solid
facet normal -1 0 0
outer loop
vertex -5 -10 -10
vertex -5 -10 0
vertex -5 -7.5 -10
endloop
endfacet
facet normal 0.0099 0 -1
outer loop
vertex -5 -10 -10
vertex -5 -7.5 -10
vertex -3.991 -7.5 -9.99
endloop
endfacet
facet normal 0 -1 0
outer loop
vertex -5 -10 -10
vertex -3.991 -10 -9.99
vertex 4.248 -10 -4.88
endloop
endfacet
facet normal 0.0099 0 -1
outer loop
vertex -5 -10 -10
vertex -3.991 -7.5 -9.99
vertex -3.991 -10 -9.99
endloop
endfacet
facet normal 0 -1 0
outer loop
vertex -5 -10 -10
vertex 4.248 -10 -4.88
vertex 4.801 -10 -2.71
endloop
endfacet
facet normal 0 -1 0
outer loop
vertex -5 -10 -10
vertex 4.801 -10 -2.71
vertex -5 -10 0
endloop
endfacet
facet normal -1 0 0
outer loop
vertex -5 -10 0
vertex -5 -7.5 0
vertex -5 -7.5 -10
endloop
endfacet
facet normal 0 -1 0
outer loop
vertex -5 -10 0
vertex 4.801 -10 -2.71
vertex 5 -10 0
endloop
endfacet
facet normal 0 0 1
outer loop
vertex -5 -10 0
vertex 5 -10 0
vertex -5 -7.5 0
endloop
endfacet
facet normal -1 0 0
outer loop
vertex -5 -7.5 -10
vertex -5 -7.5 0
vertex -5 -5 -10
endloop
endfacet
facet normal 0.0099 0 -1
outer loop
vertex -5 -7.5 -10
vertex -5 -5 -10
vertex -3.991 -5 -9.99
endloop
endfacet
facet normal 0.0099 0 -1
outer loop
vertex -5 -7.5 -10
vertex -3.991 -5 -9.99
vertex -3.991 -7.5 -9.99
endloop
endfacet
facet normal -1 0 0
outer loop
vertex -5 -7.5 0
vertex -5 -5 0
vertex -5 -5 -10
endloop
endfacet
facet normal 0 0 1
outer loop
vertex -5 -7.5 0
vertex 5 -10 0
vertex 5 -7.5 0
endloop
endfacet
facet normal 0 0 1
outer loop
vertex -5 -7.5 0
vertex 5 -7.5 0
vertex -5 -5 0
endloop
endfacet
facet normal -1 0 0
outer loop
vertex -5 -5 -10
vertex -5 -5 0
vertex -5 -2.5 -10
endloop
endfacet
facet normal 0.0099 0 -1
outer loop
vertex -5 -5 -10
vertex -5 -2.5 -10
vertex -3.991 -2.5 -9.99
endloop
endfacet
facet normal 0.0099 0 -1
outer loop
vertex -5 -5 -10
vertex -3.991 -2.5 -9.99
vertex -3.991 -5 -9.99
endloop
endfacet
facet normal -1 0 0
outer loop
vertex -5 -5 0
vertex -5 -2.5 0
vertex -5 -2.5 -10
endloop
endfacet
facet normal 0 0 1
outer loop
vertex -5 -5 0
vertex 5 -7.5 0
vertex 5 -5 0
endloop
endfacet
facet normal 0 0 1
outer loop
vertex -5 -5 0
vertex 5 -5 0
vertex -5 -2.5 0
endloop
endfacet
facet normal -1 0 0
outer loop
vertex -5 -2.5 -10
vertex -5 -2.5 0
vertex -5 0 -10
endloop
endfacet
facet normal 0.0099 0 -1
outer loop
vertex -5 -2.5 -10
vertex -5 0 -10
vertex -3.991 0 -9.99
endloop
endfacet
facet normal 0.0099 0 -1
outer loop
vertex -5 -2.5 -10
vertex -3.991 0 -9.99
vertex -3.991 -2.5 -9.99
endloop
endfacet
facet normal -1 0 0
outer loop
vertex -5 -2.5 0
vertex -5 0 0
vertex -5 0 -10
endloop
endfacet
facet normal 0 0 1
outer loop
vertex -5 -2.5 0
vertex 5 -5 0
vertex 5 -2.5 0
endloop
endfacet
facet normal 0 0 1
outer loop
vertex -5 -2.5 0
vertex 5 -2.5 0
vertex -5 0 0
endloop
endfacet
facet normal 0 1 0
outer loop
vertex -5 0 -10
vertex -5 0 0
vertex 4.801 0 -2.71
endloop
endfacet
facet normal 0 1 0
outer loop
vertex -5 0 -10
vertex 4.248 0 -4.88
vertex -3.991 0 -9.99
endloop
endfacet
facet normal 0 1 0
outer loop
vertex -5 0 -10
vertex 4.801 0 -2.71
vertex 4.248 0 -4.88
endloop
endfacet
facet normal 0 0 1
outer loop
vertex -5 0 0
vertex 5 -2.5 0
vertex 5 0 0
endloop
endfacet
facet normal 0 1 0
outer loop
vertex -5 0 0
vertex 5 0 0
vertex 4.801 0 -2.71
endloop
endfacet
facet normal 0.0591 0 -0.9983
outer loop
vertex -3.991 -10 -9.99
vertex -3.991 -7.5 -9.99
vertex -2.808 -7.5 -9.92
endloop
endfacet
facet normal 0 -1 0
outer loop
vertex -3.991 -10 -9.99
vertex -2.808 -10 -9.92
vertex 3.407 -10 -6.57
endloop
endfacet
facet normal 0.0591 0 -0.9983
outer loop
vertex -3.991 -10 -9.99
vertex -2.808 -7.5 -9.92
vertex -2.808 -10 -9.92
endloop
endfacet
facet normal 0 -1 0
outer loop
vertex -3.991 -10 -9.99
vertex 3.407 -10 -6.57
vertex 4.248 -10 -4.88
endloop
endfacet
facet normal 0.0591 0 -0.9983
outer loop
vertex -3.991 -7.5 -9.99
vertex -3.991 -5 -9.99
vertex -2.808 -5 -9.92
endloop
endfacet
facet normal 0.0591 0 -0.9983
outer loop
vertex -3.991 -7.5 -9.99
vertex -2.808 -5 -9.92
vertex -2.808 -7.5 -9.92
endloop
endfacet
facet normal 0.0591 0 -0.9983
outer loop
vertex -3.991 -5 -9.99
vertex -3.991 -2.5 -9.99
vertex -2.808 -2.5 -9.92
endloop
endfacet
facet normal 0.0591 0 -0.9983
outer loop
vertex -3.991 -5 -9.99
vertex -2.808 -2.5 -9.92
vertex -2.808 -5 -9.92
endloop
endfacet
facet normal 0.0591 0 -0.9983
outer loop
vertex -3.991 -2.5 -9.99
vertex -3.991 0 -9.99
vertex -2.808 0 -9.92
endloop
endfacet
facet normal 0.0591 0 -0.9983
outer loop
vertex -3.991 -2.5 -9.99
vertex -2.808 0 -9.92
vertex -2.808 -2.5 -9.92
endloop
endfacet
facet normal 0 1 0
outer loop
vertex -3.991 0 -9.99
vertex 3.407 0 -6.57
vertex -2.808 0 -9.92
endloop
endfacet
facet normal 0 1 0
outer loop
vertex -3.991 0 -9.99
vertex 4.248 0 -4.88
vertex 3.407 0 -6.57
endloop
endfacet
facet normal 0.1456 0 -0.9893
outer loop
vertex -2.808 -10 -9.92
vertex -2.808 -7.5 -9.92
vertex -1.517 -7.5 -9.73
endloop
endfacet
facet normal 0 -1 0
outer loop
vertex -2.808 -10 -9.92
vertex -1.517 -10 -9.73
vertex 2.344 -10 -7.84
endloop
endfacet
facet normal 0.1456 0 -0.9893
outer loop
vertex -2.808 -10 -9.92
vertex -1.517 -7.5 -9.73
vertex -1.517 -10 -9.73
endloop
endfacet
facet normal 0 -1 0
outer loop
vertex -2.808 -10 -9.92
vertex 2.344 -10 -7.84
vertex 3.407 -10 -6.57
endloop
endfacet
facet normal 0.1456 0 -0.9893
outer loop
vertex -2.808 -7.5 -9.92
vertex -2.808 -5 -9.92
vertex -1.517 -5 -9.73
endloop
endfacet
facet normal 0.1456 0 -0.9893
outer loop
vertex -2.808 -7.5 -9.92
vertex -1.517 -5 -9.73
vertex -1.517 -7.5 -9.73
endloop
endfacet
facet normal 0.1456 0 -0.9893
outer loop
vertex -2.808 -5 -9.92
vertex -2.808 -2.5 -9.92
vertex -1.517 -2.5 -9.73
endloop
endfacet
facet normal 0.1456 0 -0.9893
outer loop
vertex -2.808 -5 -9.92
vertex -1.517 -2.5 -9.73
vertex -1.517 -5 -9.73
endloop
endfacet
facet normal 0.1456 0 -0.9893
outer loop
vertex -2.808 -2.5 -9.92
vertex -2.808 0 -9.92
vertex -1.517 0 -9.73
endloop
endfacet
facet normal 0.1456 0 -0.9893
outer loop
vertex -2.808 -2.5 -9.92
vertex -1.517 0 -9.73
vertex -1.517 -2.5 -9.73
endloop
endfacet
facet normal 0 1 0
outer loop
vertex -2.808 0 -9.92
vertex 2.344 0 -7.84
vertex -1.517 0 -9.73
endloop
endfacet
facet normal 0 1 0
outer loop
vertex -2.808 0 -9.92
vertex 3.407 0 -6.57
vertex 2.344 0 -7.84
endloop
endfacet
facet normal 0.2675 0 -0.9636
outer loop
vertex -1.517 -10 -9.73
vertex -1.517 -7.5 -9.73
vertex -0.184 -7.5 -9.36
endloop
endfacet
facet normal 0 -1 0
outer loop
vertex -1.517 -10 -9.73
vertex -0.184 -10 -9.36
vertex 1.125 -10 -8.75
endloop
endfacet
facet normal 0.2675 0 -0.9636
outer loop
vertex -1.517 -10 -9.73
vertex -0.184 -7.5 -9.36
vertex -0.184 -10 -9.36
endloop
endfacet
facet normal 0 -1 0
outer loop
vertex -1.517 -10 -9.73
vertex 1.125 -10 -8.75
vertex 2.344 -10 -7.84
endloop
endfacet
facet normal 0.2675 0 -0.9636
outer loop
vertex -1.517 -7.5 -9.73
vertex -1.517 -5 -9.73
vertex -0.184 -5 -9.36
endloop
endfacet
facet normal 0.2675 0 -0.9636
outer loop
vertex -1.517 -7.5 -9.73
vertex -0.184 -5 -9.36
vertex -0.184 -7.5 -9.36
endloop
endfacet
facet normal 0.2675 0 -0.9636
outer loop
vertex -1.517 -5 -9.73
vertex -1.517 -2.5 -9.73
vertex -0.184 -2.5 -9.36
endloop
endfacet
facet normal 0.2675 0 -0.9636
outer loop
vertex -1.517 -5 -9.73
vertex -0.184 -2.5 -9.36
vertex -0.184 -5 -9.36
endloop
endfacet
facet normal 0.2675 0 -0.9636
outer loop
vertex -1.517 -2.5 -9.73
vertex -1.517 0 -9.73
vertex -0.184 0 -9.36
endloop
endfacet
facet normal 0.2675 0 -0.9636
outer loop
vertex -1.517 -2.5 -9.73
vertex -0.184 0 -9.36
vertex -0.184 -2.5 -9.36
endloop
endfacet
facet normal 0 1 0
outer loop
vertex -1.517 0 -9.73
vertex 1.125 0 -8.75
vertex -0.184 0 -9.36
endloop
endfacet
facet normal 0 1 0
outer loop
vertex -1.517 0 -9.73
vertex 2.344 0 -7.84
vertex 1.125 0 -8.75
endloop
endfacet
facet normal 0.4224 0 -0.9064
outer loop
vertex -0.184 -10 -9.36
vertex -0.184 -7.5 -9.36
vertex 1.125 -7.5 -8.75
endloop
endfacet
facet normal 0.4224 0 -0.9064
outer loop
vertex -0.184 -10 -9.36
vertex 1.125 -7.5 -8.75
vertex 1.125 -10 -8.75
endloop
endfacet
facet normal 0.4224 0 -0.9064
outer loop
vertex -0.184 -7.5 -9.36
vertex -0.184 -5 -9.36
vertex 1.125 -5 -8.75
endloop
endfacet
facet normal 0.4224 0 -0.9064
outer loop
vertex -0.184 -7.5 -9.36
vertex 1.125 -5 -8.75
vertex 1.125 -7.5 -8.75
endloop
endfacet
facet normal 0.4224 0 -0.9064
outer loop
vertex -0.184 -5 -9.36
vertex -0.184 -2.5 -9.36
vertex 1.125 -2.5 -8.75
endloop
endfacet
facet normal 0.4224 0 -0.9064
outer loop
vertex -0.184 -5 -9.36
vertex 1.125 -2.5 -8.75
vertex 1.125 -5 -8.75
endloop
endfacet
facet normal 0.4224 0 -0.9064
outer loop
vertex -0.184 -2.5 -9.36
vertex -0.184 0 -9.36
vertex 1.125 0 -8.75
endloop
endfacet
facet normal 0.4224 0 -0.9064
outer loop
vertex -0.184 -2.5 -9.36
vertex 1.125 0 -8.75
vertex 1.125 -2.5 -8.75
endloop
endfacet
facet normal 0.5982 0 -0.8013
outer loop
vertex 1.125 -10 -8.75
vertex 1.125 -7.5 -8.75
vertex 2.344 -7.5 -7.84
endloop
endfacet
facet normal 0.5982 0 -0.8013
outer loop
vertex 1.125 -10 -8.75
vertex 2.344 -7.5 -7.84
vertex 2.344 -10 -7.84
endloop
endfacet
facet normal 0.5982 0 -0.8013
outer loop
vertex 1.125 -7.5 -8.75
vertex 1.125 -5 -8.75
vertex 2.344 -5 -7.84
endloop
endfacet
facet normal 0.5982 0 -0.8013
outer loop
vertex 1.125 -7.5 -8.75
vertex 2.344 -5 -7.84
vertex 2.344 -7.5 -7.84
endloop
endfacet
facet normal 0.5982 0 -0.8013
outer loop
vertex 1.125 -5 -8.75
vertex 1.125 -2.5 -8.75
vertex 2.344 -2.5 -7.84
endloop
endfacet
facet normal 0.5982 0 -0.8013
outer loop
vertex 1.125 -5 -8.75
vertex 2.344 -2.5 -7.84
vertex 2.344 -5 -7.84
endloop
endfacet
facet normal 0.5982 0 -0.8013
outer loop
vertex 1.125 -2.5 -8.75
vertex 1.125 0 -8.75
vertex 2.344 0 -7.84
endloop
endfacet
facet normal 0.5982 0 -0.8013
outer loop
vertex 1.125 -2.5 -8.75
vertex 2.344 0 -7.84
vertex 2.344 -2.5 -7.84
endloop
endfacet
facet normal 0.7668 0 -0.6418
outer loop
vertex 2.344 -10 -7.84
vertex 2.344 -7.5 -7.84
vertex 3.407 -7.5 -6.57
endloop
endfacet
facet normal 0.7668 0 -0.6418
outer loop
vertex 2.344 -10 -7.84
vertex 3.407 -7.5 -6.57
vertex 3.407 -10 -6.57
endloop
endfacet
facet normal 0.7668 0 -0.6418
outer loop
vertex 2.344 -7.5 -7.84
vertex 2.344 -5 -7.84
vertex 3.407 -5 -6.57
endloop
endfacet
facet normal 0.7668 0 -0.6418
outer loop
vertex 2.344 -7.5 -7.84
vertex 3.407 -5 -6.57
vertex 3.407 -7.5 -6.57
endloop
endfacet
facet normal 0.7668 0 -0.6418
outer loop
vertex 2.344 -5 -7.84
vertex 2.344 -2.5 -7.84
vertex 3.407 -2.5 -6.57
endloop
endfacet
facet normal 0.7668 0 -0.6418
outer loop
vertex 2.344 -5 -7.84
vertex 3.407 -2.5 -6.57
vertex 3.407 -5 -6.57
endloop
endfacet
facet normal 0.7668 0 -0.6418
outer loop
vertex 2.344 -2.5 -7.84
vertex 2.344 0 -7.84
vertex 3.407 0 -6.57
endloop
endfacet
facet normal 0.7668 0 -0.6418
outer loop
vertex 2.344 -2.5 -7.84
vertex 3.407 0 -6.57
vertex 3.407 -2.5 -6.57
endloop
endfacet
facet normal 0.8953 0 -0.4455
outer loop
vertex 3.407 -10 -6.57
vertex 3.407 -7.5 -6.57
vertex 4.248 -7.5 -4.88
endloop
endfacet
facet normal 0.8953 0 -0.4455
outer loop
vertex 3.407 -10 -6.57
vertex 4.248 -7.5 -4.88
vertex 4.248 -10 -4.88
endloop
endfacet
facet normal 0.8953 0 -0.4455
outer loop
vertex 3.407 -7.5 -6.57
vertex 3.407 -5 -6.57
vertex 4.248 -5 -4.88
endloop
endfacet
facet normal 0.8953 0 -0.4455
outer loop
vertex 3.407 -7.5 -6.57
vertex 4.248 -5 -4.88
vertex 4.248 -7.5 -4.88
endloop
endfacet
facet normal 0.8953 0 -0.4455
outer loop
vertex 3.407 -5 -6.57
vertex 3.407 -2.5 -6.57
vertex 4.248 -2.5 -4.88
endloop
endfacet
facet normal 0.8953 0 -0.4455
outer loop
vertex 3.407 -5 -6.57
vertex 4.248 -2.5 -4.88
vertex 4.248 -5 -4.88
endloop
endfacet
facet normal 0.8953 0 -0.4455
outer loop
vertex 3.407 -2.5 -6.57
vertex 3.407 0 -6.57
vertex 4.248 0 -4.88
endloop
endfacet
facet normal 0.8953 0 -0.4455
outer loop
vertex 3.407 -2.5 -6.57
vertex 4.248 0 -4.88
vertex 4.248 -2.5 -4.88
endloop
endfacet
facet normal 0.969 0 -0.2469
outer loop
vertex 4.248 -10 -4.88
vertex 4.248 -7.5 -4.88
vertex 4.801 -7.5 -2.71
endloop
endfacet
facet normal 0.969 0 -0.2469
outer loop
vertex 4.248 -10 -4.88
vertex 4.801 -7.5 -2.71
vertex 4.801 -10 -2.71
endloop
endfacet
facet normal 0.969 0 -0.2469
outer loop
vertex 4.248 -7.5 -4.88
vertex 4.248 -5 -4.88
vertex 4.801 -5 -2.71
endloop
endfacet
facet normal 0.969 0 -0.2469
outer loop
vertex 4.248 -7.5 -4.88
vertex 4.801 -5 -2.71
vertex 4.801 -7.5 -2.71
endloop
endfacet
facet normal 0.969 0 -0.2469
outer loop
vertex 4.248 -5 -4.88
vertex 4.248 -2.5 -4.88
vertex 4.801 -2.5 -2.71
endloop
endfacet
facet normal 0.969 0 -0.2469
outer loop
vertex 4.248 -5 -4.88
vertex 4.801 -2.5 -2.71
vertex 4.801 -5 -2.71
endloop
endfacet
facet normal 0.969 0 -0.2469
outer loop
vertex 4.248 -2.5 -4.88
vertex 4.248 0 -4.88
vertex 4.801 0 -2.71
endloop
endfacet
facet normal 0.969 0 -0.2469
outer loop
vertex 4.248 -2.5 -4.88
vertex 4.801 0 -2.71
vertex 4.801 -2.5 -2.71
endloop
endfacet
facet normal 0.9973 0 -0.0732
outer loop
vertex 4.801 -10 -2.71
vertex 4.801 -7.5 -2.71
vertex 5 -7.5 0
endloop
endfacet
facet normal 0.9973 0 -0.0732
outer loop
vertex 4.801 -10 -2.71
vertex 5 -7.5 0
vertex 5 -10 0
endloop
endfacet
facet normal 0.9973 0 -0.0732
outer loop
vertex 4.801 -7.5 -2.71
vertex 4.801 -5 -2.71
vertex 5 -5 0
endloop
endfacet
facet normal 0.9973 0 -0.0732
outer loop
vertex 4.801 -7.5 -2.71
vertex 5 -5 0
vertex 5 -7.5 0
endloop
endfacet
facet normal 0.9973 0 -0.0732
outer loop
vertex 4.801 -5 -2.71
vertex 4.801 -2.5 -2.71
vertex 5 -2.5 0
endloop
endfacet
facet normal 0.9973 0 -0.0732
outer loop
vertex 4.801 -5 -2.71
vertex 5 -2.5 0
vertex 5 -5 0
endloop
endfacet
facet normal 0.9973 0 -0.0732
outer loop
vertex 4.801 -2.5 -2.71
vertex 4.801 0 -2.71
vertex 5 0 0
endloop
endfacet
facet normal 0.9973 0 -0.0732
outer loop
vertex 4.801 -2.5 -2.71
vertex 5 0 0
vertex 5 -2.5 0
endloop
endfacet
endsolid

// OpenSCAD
// Start: lazy_union
default_5_default_5();
// End: lazy_union

// Modules.

// 'PartMaterial undef-default - default 5.0'
module default_5_default_5() {
  // 'None : _combine_solids_and_holes'
  union() {
    // 'default : _combine_solids_and_holes'
    union() {
      // 'test'
      multmatrix(m=[[0.7071067811865475, 0.7071067811865475, 0.0, -5.0], [0.0, 0.0, 1.0, -10.0], [0.7071067811865475, -0.7071067811865475, -0.0, -0.0], [0.0, 0.0, 0.0, 1.0]]) {
        // 'test : _combine_solids_and_holes'
        union() {
          // 'test'
          linear_extrude(height=10.0, twist=0.0, slices=4, scale=[1.0, 1.0]) {
            polygon(points=[[0.0, 0.0], [7.0710678118654755, 7.0710678118654755], [5.014094185393809, 8.846612939424897], [3.0886424202228393, 9.990004604603543], [1.2989551570396882, 10.590338261830922], [-0.35072496346852766, 10.736709365536537], [-1.856155300614688, 10.518213370149894], [-3.2130932137116712, 10.023945730100497], [-4.417296062072362, 9.34300189981785], [-5.464521205009639, 8.564477333731459], [-6.350526001836384, 7.777467486270833], [-7.0710678118654755, 7.071067811865472]]);
          }
        }
      }
    }
  }
} // end module default_5_default_5
